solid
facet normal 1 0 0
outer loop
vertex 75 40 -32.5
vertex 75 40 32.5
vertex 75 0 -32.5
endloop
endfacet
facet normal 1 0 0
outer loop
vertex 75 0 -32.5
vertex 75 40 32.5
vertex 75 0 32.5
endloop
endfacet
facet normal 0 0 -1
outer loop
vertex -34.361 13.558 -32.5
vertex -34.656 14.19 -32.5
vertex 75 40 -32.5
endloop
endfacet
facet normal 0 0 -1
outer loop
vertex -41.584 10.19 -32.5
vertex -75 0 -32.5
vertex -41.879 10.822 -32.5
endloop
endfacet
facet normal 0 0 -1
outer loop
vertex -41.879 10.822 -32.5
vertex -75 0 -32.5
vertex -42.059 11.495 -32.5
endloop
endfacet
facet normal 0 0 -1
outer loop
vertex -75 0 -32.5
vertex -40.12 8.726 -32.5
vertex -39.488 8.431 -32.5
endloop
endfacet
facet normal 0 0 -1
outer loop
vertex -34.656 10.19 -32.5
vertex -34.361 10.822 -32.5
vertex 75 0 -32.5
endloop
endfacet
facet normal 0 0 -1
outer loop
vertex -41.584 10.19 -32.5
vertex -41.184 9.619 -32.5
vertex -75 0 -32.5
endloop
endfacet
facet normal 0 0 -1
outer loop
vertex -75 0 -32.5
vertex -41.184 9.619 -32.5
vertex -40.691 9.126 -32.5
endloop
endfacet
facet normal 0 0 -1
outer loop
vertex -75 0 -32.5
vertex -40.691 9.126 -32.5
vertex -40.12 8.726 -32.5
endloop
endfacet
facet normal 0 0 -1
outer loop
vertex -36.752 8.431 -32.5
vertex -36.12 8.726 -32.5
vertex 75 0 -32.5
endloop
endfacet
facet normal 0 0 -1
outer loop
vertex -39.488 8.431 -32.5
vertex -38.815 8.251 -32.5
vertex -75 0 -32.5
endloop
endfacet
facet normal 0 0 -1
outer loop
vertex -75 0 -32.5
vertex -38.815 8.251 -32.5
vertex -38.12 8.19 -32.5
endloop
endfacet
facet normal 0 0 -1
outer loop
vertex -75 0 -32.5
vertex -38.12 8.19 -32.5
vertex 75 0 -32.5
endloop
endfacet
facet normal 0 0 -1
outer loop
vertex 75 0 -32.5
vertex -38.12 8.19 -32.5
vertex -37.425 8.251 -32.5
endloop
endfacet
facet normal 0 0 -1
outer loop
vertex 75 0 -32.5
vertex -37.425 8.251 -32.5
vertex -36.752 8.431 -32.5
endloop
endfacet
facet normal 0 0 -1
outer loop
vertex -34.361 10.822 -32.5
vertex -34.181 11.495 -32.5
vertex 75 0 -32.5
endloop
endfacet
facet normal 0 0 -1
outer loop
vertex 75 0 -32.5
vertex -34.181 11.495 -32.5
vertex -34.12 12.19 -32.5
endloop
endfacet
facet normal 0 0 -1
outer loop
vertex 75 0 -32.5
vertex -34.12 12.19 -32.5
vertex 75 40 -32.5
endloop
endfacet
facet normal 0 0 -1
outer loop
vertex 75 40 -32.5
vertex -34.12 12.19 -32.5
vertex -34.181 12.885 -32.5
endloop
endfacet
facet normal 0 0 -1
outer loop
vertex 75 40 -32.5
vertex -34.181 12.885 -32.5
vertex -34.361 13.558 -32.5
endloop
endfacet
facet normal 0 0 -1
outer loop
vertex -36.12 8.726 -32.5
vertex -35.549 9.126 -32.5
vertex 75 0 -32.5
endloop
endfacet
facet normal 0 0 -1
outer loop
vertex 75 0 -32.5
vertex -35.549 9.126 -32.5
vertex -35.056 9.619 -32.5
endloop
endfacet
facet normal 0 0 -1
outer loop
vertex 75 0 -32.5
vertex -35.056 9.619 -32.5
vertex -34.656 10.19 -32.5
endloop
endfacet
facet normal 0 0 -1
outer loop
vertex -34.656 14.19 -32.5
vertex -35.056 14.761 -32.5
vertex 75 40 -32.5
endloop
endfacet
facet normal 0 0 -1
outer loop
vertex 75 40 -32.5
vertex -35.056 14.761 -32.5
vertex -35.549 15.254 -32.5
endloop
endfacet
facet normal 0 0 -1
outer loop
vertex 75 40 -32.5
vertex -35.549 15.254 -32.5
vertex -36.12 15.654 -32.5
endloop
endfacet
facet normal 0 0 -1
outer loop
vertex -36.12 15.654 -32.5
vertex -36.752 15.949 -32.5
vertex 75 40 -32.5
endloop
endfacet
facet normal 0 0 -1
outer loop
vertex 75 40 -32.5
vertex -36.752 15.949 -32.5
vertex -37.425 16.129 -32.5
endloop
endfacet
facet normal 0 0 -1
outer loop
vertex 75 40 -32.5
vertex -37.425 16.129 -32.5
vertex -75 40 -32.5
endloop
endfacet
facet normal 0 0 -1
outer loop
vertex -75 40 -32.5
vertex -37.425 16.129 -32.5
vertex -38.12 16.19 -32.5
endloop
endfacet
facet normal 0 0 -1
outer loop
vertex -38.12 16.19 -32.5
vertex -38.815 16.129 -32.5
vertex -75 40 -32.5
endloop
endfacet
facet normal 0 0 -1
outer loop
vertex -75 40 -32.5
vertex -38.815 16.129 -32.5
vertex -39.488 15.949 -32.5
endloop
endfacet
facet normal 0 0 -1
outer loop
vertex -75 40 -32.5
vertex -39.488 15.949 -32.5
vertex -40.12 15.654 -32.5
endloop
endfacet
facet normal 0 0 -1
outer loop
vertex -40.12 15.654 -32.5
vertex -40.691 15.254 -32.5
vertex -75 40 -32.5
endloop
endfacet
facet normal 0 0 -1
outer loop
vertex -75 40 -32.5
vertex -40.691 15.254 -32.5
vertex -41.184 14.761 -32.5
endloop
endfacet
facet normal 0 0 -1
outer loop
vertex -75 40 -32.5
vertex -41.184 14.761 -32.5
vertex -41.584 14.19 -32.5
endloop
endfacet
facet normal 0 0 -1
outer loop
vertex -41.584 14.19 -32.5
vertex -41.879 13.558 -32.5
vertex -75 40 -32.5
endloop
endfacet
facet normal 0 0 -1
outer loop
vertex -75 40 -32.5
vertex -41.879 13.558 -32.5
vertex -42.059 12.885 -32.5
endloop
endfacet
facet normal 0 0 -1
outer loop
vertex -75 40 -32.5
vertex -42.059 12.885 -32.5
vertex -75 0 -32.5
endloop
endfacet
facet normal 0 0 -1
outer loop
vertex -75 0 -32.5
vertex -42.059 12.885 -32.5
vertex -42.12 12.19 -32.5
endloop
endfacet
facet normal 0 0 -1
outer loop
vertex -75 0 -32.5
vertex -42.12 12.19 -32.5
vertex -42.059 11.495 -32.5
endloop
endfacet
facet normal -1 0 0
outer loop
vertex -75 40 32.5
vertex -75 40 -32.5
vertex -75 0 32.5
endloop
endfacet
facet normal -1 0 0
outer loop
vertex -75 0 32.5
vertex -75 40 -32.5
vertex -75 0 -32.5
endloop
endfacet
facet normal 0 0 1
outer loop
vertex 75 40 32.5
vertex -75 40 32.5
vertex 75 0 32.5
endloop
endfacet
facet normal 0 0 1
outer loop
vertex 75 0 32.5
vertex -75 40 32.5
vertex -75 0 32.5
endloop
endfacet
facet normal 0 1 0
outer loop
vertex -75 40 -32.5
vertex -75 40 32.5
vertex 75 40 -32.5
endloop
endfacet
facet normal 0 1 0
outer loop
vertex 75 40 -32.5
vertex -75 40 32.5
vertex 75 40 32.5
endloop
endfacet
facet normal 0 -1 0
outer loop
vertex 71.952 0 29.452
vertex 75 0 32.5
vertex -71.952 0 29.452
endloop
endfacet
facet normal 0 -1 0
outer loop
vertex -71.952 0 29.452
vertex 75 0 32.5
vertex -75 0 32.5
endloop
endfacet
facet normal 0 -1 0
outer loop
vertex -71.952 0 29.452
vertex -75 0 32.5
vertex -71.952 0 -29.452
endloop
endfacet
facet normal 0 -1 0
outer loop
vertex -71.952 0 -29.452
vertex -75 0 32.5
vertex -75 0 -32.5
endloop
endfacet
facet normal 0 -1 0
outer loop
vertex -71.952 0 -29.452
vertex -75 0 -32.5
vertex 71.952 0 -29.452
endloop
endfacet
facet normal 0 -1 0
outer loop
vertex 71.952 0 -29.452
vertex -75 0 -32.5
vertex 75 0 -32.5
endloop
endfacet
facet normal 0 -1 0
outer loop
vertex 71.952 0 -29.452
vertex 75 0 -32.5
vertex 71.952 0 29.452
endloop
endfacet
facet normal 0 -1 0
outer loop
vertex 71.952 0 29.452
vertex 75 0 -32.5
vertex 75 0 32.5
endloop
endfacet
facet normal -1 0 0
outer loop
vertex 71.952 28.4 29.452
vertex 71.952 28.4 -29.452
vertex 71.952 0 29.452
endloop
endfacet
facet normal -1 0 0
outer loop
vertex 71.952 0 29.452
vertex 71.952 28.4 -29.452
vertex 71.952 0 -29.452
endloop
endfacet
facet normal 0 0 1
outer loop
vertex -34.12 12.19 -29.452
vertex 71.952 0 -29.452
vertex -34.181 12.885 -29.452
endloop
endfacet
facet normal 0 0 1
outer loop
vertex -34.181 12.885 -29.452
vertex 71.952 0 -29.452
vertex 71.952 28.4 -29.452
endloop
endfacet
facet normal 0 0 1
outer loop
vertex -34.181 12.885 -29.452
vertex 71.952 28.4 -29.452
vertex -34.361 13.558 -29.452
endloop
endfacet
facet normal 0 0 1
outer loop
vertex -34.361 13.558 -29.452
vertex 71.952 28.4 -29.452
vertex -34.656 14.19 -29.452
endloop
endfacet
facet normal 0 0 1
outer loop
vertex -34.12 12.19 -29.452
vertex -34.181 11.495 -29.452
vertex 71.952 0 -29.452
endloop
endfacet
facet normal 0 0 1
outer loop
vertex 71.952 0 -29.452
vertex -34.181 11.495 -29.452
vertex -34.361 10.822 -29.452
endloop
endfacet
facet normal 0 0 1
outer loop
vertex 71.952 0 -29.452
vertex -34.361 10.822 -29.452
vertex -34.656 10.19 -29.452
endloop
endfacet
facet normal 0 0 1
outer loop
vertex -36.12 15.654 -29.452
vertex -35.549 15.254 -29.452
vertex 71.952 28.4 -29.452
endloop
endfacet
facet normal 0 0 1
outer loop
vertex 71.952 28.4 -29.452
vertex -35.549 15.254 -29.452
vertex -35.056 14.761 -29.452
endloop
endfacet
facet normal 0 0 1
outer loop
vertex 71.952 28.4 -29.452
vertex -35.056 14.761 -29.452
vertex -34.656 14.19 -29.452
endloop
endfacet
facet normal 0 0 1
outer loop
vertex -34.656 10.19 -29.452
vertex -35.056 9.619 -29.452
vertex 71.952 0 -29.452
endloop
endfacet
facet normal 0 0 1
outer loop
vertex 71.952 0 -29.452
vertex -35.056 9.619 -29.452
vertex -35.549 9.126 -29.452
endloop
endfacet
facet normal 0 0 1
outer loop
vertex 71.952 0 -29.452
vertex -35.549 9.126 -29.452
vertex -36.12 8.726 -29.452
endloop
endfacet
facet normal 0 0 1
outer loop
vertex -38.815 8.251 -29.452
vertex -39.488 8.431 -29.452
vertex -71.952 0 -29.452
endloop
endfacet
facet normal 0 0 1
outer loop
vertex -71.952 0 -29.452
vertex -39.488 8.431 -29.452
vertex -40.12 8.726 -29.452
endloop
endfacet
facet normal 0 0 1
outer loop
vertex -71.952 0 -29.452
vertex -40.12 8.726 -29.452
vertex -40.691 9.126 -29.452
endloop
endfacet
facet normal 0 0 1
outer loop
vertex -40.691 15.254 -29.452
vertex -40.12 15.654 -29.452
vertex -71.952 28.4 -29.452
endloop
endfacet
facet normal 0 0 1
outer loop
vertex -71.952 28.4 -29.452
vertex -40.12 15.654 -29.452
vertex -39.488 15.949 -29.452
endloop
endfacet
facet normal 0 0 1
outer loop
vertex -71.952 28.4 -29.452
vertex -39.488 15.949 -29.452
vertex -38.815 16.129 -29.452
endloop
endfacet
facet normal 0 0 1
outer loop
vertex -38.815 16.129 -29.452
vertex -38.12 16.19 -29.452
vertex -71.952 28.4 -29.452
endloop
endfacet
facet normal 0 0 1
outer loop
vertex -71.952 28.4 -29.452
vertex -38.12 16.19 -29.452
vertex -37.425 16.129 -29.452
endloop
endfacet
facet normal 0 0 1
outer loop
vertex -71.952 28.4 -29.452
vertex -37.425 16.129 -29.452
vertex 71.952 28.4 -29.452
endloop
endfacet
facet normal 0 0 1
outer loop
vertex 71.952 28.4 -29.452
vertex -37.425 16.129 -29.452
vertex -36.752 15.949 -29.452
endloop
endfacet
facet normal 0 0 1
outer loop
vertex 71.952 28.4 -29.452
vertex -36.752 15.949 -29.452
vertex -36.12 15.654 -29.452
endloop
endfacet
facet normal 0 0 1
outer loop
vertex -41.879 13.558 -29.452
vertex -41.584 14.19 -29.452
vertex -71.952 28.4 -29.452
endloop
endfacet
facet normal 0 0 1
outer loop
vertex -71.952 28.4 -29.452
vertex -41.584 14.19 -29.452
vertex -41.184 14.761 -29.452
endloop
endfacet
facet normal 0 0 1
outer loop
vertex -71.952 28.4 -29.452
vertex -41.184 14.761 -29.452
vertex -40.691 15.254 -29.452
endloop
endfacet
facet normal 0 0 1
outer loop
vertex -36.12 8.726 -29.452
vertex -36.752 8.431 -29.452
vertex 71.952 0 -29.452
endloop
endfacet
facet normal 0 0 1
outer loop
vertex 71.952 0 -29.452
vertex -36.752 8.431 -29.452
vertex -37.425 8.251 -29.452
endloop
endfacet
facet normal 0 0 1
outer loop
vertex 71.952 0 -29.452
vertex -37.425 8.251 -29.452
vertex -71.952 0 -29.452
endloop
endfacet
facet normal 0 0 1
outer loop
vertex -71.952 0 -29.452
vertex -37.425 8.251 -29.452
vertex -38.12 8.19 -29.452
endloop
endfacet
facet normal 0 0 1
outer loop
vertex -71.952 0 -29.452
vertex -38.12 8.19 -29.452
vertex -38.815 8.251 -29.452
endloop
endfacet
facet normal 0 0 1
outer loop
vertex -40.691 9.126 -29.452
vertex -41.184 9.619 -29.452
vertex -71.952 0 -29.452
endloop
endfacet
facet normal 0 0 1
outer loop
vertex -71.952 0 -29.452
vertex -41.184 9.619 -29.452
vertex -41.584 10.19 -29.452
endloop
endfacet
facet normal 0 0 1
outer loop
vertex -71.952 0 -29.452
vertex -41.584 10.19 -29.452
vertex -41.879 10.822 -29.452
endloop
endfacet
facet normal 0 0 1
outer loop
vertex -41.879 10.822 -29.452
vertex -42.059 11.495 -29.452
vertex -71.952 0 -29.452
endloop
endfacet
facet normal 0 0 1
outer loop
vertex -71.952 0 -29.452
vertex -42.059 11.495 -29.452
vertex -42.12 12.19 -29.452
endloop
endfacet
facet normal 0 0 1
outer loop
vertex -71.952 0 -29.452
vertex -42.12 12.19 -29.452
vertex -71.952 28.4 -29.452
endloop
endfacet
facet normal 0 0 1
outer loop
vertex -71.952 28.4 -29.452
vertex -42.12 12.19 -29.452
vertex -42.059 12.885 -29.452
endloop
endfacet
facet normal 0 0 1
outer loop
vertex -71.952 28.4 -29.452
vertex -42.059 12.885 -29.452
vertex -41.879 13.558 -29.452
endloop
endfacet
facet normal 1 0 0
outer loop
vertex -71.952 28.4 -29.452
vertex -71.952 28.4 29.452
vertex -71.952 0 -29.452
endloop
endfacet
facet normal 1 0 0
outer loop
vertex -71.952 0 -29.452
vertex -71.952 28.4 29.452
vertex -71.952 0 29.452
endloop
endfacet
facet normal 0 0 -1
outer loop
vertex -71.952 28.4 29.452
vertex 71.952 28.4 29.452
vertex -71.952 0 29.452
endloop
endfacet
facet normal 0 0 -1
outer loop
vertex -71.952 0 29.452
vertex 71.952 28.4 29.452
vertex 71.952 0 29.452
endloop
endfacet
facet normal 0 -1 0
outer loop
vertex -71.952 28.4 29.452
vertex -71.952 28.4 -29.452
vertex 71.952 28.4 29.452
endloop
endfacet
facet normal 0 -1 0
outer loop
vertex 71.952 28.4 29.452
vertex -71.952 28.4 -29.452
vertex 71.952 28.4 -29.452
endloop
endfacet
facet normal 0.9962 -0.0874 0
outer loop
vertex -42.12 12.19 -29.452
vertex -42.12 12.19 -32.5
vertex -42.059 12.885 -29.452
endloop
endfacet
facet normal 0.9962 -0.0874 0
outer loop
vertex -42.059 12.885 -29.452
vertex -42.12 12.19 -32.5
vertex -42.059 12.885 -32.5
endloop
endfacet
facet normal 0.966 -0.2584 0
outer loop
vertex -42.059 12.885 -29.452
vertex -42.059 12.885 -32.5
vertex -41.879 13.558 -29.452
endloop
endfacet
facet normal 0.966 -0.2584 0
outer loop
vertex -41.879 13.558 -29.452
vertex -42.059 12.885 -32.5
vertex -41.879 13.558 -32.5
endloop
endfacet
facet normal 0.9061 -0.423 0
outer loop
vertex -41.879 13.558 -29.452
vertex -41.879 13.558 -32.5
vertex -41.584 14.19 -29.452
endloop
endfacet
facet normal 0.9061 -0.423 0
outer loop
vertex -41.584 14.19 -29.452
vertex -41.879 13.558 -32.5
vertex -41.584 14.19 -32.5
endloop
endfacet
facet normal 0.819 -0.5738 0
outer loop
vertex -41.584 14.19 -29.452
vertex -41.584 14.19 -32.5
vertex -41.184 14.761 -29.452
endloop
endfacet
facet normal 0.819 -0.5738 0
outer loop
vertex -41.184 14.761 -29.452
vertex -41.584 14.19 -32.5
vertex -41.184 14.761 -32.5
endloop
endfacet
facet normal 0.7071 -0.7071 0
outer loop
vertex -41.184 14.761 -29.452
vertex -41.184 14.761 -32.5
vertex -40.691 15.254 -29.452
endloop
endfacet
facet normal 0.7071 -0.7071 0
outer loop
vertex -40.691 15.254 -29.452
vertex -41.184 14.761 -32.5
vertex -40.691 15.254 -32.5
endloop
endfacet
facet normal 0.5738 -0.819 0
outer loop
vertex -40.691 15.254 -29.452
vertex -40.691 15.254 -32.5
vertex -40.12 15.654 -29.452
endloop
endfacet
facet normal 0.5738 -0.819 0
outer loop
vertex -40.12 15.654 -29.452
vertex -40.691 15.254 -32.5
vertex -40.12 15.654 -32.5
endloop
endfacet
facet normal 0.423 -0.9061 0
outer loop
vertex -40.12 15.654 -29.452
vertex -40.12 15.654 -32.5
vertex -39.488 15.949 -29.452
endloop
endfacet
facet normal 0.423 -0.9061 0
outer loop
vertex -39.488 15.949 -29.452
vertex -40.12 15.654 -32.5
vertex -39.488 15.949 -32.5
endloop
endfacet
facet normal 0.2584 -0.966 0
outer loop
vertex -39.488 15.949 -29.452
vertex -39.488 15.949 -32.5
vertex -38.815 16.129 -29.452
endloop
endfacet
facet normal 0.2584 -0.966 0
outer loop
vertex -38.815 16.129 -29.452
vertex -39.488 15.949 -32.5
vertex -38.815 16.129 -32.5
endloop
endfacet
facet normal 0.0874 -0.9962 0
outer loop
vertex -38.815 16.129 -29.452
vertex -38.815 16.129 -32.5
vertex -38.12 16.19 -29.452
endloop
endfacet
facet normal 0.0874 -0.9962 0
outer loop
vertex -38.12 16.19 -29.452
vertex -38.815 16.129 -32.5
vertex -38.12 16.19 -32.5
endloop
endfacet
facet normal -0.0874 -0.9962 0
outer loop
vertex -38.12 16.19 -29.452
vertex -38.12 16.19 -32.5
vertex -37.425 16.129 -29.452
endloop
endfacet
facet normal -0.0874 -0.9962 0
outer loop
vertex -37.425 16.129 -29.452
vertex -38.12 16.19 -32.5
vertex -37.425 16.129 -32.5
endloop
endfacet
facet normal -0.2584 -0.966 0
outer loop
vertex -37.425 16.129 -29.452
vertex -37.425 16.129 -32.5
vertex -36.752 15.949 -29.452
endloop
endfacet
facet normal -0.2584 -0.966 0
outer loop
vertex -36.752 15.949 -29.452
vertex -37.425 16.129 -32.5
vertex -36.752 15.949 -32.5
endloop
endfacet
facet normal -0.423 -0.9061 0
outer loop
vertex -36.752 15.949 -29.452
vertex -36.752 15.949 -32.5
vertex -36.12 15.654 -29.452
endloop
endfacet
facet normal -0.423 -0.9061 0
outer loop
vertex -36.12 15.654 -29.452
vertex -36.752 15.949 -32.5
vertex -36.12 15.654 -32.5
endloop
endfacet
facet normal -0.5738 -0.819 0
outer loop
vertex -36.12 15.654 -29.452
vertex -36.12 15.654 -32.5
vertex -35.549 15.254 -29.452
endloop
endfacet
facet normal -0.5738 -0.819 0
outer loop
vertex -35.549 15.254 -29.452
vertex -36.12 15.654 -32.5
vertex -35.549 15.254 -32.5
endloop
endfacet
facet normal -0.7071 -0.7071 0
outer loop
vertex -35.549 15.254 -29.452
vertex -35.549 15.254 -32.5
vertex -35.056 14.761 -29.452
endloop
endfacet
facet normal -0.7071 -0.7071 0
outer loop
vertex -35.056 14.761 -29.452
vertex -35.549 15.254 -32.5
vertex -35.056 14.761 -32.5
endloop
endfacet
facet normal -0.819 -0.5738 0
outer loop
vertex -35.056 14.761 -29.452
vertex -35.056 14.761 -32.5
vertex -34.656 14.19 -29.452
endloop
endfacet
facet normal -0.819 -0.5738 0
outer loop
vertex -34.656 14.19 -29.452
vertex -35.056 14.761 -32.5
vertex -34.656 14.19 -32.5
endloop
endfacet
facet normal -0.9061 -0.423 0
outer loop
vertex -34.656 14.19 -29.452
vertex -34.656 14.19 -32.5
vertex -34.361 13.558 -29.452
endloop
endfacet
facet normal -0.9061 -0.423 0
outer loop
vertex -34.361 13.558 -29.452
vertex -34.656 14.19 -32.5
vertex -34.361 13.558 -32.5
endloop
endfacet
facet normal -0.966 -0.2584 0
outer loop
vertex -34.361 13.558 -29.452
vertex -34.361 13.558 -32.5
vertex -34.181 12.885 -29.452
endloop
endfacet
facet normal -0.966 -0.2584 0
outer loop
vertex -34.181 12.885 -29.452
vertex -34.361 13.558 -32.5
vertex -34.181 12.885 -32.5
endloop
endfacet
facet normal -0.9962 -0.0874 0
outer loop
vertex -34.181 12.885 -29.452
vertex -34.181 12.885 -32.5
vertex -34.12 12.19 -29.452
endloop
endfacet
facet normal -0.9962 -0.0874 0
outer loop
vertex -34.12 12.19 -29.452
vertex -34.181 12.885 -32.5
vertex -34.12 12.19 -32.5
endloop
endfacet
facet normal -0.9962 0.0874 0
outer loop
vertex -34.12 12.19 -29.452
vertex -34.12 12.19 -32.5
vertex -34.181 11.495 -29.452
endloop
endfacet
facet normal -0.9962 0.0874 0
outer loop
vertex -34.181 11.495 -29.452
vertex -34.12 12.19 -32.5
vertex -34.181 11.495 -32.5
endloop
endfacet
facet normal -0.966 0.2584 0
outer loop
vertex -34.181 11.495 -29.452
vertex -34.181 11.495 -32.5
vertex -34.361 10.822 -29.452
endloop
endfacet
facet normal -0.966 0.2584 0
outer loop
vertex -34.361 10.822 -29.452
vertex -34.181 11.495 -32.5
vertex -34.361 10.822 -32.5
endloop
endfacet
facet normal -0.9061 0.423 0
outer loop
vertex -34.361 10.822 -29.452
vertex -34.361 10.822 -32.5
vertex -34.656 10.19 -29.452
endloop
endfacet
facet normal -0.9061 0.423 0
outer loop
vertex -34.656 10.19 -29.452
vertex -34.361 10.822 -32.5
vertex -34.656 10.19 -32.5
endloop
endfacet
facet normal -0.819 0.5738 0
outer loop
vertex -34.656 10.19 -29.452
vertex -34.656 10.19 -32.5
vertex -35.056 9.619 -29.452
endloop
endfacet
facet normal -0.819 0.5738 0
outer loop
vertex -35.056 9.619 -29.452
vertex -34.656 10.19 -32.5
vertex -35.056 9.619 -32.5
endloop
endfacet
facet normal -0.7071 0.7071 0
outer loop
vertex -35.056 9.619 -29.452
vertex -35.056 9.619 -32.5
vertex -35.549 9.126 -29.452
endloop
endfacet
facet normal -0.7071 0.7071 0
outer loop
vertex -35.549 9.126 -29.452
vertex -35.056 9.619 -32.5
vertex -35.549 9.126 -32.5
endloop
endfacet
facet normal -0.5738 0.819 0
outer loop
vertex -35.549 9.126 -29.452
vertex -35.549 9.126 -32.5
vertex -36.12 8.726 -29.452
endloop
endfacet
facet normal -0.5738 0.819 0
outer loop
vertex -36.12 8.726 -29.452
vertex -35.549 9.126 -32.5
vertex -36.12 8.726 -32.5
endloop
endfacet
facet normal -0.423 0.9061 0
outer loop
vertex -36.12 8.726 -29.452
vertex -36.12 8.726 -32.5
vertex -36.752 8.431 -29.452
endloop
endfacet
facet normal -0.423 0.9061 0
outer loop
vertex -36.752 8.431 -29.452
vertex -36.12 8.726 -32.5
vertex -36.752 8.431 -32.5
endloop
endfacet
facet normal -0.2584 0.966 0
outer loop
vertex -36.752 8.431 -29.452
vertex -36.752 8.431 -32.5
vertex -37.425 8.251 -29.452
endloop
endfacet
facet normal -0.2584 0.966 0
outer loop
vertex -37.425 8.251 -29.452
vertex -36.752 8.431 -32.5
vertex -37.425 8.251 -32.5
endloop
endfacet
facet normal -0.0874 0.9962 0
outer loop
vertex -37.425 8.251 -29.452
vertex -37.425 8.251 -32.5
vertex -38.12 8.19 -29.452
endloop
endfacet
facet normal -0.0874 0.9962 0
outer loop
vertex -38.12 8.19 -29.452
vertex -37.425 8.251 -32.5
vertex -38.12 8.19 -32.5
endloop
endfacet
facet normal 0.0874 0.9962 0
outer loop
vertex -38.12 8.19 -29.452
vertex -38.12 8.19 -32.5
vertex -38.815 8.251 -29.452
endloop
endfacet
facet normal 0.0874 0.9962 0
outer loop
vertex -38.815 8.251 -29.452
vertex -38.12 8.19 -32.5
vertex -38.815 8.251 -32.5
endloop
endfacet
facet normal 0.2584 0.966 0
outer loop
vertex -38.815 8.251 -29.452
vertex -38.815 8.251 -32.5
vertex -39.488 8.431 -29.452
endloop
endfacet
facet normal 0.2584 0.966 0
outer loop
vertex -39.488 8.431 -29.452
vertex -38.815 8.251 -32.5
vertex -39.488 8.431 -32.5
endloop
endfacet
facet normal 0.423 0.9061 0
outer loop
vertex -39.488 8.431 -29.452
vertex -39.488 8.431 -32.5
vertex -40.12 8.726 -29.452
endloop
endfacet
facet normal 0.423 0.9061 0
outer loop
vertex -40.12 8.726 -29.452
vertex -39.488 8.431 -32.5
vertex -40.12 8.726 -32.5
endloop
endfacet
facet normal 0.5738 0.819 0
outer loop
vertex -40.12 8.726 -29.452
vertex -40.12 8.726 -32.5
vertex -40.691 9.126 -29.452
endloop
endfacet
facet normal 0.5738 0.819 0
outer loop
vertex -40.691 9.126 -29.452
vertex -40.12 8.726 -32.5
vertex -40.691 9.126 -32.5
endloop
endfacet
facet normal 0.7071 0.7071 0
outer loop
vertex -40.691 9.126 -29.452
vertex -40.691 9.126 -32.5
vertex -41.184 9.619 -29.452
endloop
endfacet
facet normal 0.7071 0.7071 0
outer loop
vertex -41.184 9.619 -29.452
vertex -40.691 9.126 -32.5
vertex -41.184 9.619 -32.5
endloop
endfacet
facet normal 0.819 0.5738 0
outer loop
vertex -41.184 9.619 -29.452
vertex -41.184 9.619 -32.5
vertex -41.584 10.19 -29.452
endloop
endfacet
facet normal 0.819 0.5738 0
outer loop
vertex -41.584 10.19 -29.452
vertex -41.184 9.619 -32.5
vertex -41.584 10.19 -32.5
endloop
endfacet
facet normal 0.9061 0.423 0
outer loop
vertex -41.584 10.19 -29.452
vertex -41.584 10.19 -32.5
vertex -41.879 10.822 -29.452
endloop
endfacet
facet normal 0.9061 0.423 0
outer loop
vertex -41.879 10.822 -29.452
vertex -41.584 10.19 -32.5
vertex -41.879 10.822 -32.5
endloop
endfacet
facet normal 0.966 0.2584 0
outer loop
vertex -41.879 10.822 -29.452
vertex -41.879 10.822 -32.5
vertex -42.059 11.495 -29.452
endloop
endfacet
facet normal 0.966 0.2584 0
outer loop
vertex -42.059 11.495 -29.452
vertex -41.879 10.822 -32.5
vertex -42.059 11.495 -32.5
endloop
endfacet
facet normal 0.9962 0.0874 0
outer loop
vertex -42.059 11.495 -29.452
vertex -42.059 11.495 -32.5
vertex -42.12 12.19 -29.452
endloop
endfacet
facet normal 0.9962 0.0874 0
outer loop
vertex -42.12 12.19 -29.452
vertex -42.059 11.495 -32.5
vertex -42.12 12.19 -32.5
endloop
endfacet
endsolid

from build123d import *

# Parameters (mm, degrees)
SKETCH1_W           = 150
SKETCH1_H           = 65
BOSS_EXTRUDE1_DEPTH = 40
SKETCH2_W           = 143.904
SKETCH2_H           = 58.904
CUT_EXTRUDE1_DEPTH  = 28.4
SKETCH3_R           = 4
CUT_EXTRUDE2_DEPTH  = 3.048


with BuildPart() as part:
    # Sketch1 → Boss-Extrude1 (new body)
    with BuildSketch(Plane(origin=(0, 0, 0), x_dir=(1, 0, 0), z_dir=(0, 1, 0))):
        Rectangle(SKETCH1_W, SKETCH1_H)
    extrude(amount=BOSS_EXTRUDE1_DEPTH)

    # Sketch2 → Cut-Extrude1 (cut)
    with BuildSketch(Plane.XZ):
        Rectangle(SKETCH2_W, SKETCH2_H)
    extrude(amount=-CUT_EXTRUDE1_DEPTH, mode=Mode.SUBTRACT)

    # Sketch3 → Cut-Extrude2 (cut)
    with BuildSketch(Plane(origin=(0, 0, -32.5), x_dir=(-1, 0, 0), z_dir=(0, 0, -1))):
        with Locations((38.12, 12.19)):
            Circle(SKETCH3_R)
    extrude(amount=-CUT_EXTRUDE2_DEPTH, mode=Mode.SUBTRACT)


solid = part.part
